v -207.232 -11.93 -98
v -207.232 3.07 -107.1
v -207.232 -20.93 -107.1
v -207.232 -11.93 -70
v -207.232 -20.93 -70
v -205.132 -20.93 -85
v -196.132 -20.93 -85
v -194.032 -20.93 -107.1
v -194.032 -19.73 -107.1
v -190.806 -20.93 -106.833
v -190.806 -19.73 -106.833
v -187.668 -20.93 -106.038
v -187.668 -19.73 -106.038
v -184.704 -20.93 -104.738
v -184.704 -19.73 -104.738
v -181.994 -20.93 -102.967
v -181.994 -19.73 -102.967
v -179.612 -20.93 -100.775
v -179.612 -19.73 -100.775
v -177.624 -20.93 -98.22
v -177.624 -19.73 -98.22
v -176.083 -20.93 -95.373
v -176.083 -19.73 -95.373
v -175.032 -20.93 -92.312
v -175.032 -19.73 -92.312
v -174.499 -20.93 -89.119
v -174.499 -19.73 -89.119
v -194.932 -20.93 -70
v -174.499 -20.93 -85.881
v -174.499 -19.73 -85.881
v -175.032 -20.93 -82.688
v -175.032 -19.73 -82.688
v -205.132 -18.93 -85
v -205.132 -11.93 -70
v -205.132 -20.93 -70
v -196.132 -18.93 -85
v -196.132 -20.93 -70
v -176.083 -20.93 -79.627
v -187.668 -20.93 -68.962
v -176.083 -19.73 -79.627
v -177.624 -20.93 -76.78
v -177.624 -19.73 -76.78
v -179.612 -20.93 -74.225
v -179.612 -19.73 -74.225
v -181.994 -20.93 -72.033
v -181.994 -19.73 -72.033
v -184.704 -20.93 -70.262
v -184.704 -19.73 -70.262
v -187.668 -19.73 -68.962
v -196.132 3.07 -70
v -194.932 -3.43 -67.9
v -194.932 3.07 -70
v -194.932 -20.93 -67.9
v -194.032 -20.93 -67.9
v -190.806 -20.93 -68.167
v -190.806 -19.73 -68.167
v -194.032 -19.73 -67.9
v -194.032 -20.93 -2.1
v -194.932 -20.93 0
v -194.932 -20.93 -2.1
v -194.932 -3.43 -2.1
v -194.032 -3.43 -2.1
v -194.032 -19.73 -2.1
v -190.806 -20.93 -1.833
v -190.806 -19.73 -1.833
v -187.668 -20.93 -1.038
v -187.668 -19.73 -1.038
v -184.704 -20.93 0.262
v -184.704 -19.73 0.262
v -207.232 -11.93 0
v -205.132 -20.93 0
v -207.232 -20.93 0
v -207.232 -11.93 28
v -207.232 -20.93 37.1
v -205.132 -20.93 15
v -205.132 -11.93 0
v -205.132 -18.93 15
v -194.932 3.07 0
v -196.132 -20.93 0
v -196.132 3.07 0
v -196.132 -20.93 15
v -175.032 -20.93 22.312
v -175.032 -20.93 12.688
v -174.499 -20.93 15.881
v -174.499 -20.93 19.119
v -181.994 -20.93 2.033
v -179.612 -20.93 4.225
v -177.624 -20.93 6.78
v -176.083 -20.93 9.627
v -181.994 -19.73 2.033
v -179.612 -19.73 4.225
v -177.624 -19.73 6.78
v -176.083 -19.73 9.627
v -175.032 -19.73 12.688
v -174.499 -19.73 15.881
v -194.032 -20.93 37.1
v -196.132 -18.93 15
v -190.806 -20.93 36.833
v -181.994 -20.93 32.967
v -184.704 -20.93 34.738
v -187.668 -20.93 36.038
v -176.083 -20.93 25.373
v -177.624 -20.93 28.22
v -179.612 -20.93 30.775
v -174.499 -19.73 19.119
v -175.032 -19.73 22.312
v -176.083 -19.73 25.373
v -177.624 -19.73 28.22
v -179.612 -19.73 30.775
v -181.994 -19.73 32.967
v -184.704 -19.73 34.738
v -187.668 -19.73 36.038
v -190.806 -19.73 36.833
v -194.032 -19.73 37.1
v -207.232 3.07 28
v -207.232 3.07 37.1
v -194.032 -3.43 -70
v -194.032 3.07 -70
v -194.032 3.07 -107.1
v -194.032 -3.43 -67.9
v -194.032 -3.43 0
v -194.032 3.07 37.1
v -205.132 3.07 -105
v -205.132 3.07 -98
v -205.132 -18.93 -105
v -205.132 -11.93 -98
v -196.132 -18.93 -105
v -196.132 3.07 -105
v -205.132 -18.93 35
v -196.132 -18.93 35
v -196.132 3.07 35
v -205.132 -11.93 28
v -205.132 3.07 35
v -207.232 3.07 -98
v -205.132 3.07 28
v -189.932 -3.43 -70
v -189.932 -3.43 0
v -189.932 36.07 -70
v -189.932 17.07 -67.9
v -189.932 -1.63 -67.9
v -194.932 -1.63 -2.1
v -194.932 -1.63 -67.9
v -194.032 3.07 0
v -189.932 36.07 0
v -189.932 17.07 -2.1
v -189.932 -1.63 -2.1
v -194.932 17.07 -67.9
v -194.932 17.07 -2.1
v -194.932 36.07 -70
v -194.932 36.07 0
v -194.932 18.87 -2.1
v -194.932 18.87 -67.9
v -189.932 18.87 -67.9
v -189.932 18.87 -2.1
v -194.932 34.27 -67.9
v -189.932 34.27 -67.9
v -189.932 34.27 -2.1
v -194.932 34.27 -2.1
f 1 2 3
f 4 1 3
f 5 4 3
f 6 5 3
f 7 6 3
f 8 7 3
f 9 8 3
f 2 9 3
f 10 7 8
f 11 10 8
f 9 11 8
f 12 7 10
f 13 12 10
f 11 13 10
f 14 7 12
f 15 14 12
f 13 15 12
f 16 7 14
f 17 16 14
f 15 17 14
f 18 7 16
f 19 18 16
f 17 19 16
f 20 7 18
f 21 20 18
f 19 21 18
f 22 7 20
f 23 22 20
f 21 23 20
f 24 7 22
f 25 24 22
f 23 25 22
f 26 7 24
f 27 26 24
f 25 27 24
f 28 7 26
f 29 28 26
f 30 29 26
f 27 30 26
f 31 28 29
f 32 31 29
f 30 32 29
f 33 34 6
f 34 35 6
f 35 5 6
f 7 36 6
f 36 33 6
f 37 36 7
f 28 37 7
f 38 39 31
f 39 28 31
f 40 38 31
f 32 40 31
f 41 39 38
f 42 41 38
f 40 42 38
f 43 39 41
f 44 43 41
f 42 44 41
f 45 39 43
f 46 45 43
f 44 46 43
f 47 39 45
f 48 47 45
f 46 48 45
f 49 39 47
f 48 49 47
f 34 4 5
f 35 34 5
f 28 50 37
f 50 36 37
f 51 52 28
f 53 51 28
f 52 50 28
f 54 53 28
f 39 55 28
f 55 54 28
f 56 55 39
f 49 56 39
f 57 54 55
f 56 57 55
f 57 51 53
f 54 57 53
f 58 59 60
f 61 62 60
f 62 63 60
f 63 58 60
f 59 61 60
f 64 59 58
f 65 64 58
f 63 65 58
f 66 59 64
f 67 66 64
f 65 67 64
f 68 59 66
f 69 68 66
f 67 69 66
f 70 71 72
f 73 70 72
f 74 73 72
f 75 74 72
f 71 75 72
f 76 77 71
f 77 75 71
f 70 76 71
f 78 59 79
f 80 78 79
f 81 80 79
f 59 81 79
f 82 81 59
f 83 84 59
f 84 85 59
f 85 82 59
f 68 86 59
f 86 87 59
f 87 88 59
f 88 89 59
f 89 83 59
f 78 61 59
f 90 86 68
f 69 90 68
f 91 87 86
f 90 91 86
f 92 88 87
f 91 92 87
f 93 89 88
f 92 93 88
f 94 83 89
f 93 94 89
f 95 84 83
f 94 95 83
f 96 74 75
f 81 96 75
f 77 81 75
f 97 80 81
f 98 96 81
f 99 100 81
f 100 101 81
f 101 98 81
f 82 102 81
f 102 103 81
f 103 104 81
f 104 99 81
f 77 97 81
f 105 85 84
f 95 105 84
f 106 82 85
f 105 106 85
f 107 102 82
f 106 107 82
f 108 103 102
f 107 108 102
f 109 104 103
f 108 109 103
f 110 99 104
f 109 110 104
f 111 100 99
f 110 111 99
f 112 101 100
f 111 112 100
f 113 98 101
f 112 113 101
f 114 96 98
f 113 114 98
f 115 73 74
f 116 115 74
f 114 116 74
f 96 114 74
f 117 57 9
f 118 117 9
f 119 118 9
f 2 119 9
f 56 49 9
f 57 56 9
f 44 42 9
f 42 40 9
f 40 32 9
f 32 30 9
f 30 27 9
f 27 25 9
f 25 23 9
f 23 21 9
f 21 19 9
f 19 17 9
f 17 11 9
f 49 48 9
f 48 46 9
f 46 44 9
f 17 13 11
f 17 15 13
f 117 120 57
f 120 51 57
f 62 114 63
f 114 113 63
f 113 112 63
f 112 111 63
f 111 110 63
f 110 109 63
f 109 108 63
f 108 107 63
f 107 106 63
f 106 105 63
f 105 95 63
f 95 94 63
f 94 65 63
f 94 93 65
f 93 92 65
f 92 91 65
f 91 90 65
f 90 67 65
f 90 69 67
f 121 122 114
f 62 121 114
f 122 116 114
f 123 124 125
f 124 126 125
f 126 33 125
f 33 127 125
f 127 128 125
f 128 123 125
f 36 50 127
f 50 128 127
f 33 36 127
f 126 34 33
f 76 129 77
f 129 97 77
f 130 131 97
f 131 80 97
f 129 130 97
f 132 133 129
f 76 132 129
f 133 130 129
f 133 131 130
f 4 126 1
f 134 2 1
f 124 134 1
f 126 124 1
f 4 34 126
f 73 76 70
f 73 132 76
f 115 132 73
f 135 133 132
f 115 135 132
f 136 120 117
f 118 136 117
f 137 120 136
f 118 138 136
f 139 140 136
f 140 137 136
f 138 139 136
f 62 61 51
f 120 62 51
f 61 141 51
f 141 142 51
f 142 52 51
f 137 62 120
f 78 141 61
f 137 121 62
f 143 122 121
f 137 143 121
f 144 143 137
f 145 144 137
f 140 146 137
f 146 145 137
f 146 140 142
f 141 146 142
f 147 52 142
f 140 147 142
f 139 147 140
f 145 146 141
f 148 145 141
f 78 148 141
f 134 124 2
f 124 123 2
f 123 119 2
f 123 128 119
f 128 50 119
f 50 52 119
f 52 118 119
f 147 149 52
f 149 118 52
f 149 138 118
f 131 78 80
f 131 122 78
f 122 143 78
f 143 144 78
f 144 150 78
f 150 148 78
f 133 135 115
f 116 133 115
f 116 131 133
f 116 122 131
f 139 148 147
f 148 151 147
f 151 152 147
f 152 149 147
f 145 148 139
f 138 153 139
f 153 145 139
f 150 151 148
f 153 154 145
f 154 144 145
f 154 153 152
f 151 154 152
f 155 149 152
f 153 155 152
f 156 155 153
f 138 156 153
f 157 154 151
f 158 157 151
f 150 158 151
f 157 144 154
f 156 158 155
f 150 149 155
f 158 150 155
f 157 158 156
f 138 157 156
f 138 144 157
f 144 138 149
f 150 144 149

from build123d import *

# Parameters (mm, degrees)
SALIENTE_EXTRUIR2_DEPTH  = 35
CROQUIS4_W               = 9
CROQUIS4_H               = 15
CORTAR_EXTRUIR1_DEPTH    = 70
SALIENTE_EXTRUIR3_DEPTH  = 2.1
CROQUIS8_W               = 2.1
CROQUIS8_H               = 15
SALIENTE_EXTRUIR4_DEPTH  = 7
SALIENTE_EXTRUIR5_START  = -2.1
CROQUIS9_W               = 28
CROQUIS9_H               = 15
SALIENTE_EXTRUIR5_DEPTH  = 2.1
SALIENTE_EXTRUIR6_START  = -2.1
CROQUIS10_W              = 9
CROQUIS10_H              = 15
SALIENTE_EXTRUIR6_DEPTH  = 2.1
SALIENTE_EXTRUIR7_DEPTH  = 0.9
SALIENTE_EXTRUIR8_DEPTH  = 1.2
CROQUIS16_W              = 70
CROQUIS16_H              = 39.5
CROQUIS16_W_2            = 65.8
CROQUIS16_H_2            = 15.4
CROQUIS16_H_3            = 18.7
SALIENTE_EXTRUIR10_DEPTH = 4.1


with BuildPart() as part:
    # Croquis3 → Saliente-Extruir2 (new body)
    with BuildSketch(Plane.XY):
        Polygon((-207.232131222, -11.93013618), (-207.232131222, -18.93013618), (-207.232131222, -20.93013618), (-194.032131222, -20.93013618), (-194.032131222, -11.93013618), (-196.132131222, -11.93013618), (-196.132131222, -18.93013618), (-205.132131222, -18.93013618), (-205.132131222, -11.93013618), align=None)
    extrude(amount=SALIENTE_EXTRUIR2_DEPTH)

    # Croquis4 → Cortar-Extruir1 (cut)
    with BuildSketch(Plane(origin=(0, -18.93013618, 0), x_dir=(1, 0, 0), z_dir=(0, 1, 0))):
        with Locations((-200.632131222, -7.5)):
            Rectangle(CROQUIS4_W, CROQUIS4_H)
    extrude(amount=-CORTAR_EXTRUIR1_DEPTH, mode=Mode.SUBTRACT)

    # Croquis7 → Saliente-Extruir3 (add)
    with BuildSketch(Plane.XY.offset(35)):
        Polygon((-205.132131222, -11.93013618), (-205.132131222, 3.06986382), (-207.232131222, 3.06986382), (-207.232131222, -20.93013618), (-194.032131222, -20.93013618), (-194.032131222, 3.06986382), (-196.132131222, 3.06986382), (-196.132131222, -11.93013618), align=None)
    extrude(amount=SALIENTE_EXTRUIR3_DEPTH)

    # Croquis8 → Saliente-Extruir4 (add)
    with BuildSketch(Plane(origin=(0, 0, 35), x_dir=(-1, 0, 0), z_dir=(0, 0, -1))):
        with Locations((195.082131222, -4.43013618)):
            Rectangle(CROQUIS8_W, CROQUIS8_H)
        with Locations((206.182131222, -4.43013618)):
            Rectangle(CROQUIS8_W, CROQUIS8_H)
    extrude(amount=SALIENTE_EXTRUIR4_DEPTH)

    # Croquis9 → Saliente-Extruir5 (add)
    with BuildSketch(Plane(origin=(-194.032131222, 0, 0), x_dir=(0, 0, -1), z_dir=(1, 0, 0)).offset(SALIENTE_EXTRUIR5_START)):
        with Locations((-14, -4.43013618)):
            Rectangle(CROQUIS9_W, CROQUIS9_H)
    extrude(amount=SALIENTE_EXTRUIR5_DEPTH)

    # Croquis10 → Saliente-Extruir6 (add)
    with BuildSketch(Plane.XY.offset(37.1).offset(SALIENTE_EXTRUIR6_START)):
        with Locations((-200.632131222, -4.43013618)):
            Rectangle(CROQUIS10_W, CROQUIS10_H)
    extrude(amount=SALIENTE_EXTRUIR6_DEPTH)

    # Croquis12 → Saliente-Extruir7 (add)
    with BuildSketch(Plane(origin=(-194.032131222, 0, 0), x_dir=(0, 0, -1), z_dir=(1, 0, 0))):
        Polygon((0, 3.06986382), (0, 36.06986382), (35, 36.06986382), (35, 34.26986382), (2.1, 34.26986382), (2.1, 18.86986382), (35, 18.86986382), (35, 17.06986382), (2.1, 17.06986382), (2.1, -1.63013618), (35, -1.63013618), (35, -3.43013618), (2.1, -3.43013618), (2.1, -20.93013618), (0, -20.93013618), align=None)
    extrude(amount=-SALIENTE_EXTRUIR7_DEPTH)

    # Simetría5: part across plane


with BuildPart() as part_1:
    add(part.part)
    add(part.part.mirror(Plane(origin=(0, 0, -35), x_dir=(1, 0, 0), z_dir=(0, 0, -1))))

    # Croquis13 → Saliente-Extruir8 (add)
    with BuildSketch(Plane.XZ.offset(20.93013618)):
        with BuildLine():
            Line((-194.032131222, 37.1), (-194.032131222, -2.1))
            ThreePointArc((-194.032131222, -2.1), (-174.432131222, 17.5), (-194.032131222, 37.1))
        make_face()
        with BuildLine():
            Line((-194.032131222, -67.9), (-194.032131222, -107.1))
            ThreePointArc((-194.032131222, -107.1), (-174.432131222, -87.5), (-194.032131222, -67.9))
        make_face()
    extrude(amount=-SALIENTE_EXTRUIR8_DEPTH)

    # Croquis16 → Saliente-Extruir10 (add)
    with BuildSketch(Plane(origin=(-194.032131222, 0, 0), x_dir=(0, 0, -1), z_dir=(1, 0, 0))):
        with Locations((35, 16.31986382)):
            Rectangle(CROQUIS16_W, CROQUIS16_H)
        with Locations((35, 26.56986382)):
            Rectangle(CROQUIS16_W_2, CROQUIS16_H_2, mode=Mode.SUBTRACT)
        with Locations((35, 7.71986382)):
            Rectangle(CROQUIS16_W_2, CROQUIS16_H_3, mode=Mode.SUBTRACT)
    extrude(amount=SALIENTE_EXTRUIR10_DEPTH)


solid = part_1.part
